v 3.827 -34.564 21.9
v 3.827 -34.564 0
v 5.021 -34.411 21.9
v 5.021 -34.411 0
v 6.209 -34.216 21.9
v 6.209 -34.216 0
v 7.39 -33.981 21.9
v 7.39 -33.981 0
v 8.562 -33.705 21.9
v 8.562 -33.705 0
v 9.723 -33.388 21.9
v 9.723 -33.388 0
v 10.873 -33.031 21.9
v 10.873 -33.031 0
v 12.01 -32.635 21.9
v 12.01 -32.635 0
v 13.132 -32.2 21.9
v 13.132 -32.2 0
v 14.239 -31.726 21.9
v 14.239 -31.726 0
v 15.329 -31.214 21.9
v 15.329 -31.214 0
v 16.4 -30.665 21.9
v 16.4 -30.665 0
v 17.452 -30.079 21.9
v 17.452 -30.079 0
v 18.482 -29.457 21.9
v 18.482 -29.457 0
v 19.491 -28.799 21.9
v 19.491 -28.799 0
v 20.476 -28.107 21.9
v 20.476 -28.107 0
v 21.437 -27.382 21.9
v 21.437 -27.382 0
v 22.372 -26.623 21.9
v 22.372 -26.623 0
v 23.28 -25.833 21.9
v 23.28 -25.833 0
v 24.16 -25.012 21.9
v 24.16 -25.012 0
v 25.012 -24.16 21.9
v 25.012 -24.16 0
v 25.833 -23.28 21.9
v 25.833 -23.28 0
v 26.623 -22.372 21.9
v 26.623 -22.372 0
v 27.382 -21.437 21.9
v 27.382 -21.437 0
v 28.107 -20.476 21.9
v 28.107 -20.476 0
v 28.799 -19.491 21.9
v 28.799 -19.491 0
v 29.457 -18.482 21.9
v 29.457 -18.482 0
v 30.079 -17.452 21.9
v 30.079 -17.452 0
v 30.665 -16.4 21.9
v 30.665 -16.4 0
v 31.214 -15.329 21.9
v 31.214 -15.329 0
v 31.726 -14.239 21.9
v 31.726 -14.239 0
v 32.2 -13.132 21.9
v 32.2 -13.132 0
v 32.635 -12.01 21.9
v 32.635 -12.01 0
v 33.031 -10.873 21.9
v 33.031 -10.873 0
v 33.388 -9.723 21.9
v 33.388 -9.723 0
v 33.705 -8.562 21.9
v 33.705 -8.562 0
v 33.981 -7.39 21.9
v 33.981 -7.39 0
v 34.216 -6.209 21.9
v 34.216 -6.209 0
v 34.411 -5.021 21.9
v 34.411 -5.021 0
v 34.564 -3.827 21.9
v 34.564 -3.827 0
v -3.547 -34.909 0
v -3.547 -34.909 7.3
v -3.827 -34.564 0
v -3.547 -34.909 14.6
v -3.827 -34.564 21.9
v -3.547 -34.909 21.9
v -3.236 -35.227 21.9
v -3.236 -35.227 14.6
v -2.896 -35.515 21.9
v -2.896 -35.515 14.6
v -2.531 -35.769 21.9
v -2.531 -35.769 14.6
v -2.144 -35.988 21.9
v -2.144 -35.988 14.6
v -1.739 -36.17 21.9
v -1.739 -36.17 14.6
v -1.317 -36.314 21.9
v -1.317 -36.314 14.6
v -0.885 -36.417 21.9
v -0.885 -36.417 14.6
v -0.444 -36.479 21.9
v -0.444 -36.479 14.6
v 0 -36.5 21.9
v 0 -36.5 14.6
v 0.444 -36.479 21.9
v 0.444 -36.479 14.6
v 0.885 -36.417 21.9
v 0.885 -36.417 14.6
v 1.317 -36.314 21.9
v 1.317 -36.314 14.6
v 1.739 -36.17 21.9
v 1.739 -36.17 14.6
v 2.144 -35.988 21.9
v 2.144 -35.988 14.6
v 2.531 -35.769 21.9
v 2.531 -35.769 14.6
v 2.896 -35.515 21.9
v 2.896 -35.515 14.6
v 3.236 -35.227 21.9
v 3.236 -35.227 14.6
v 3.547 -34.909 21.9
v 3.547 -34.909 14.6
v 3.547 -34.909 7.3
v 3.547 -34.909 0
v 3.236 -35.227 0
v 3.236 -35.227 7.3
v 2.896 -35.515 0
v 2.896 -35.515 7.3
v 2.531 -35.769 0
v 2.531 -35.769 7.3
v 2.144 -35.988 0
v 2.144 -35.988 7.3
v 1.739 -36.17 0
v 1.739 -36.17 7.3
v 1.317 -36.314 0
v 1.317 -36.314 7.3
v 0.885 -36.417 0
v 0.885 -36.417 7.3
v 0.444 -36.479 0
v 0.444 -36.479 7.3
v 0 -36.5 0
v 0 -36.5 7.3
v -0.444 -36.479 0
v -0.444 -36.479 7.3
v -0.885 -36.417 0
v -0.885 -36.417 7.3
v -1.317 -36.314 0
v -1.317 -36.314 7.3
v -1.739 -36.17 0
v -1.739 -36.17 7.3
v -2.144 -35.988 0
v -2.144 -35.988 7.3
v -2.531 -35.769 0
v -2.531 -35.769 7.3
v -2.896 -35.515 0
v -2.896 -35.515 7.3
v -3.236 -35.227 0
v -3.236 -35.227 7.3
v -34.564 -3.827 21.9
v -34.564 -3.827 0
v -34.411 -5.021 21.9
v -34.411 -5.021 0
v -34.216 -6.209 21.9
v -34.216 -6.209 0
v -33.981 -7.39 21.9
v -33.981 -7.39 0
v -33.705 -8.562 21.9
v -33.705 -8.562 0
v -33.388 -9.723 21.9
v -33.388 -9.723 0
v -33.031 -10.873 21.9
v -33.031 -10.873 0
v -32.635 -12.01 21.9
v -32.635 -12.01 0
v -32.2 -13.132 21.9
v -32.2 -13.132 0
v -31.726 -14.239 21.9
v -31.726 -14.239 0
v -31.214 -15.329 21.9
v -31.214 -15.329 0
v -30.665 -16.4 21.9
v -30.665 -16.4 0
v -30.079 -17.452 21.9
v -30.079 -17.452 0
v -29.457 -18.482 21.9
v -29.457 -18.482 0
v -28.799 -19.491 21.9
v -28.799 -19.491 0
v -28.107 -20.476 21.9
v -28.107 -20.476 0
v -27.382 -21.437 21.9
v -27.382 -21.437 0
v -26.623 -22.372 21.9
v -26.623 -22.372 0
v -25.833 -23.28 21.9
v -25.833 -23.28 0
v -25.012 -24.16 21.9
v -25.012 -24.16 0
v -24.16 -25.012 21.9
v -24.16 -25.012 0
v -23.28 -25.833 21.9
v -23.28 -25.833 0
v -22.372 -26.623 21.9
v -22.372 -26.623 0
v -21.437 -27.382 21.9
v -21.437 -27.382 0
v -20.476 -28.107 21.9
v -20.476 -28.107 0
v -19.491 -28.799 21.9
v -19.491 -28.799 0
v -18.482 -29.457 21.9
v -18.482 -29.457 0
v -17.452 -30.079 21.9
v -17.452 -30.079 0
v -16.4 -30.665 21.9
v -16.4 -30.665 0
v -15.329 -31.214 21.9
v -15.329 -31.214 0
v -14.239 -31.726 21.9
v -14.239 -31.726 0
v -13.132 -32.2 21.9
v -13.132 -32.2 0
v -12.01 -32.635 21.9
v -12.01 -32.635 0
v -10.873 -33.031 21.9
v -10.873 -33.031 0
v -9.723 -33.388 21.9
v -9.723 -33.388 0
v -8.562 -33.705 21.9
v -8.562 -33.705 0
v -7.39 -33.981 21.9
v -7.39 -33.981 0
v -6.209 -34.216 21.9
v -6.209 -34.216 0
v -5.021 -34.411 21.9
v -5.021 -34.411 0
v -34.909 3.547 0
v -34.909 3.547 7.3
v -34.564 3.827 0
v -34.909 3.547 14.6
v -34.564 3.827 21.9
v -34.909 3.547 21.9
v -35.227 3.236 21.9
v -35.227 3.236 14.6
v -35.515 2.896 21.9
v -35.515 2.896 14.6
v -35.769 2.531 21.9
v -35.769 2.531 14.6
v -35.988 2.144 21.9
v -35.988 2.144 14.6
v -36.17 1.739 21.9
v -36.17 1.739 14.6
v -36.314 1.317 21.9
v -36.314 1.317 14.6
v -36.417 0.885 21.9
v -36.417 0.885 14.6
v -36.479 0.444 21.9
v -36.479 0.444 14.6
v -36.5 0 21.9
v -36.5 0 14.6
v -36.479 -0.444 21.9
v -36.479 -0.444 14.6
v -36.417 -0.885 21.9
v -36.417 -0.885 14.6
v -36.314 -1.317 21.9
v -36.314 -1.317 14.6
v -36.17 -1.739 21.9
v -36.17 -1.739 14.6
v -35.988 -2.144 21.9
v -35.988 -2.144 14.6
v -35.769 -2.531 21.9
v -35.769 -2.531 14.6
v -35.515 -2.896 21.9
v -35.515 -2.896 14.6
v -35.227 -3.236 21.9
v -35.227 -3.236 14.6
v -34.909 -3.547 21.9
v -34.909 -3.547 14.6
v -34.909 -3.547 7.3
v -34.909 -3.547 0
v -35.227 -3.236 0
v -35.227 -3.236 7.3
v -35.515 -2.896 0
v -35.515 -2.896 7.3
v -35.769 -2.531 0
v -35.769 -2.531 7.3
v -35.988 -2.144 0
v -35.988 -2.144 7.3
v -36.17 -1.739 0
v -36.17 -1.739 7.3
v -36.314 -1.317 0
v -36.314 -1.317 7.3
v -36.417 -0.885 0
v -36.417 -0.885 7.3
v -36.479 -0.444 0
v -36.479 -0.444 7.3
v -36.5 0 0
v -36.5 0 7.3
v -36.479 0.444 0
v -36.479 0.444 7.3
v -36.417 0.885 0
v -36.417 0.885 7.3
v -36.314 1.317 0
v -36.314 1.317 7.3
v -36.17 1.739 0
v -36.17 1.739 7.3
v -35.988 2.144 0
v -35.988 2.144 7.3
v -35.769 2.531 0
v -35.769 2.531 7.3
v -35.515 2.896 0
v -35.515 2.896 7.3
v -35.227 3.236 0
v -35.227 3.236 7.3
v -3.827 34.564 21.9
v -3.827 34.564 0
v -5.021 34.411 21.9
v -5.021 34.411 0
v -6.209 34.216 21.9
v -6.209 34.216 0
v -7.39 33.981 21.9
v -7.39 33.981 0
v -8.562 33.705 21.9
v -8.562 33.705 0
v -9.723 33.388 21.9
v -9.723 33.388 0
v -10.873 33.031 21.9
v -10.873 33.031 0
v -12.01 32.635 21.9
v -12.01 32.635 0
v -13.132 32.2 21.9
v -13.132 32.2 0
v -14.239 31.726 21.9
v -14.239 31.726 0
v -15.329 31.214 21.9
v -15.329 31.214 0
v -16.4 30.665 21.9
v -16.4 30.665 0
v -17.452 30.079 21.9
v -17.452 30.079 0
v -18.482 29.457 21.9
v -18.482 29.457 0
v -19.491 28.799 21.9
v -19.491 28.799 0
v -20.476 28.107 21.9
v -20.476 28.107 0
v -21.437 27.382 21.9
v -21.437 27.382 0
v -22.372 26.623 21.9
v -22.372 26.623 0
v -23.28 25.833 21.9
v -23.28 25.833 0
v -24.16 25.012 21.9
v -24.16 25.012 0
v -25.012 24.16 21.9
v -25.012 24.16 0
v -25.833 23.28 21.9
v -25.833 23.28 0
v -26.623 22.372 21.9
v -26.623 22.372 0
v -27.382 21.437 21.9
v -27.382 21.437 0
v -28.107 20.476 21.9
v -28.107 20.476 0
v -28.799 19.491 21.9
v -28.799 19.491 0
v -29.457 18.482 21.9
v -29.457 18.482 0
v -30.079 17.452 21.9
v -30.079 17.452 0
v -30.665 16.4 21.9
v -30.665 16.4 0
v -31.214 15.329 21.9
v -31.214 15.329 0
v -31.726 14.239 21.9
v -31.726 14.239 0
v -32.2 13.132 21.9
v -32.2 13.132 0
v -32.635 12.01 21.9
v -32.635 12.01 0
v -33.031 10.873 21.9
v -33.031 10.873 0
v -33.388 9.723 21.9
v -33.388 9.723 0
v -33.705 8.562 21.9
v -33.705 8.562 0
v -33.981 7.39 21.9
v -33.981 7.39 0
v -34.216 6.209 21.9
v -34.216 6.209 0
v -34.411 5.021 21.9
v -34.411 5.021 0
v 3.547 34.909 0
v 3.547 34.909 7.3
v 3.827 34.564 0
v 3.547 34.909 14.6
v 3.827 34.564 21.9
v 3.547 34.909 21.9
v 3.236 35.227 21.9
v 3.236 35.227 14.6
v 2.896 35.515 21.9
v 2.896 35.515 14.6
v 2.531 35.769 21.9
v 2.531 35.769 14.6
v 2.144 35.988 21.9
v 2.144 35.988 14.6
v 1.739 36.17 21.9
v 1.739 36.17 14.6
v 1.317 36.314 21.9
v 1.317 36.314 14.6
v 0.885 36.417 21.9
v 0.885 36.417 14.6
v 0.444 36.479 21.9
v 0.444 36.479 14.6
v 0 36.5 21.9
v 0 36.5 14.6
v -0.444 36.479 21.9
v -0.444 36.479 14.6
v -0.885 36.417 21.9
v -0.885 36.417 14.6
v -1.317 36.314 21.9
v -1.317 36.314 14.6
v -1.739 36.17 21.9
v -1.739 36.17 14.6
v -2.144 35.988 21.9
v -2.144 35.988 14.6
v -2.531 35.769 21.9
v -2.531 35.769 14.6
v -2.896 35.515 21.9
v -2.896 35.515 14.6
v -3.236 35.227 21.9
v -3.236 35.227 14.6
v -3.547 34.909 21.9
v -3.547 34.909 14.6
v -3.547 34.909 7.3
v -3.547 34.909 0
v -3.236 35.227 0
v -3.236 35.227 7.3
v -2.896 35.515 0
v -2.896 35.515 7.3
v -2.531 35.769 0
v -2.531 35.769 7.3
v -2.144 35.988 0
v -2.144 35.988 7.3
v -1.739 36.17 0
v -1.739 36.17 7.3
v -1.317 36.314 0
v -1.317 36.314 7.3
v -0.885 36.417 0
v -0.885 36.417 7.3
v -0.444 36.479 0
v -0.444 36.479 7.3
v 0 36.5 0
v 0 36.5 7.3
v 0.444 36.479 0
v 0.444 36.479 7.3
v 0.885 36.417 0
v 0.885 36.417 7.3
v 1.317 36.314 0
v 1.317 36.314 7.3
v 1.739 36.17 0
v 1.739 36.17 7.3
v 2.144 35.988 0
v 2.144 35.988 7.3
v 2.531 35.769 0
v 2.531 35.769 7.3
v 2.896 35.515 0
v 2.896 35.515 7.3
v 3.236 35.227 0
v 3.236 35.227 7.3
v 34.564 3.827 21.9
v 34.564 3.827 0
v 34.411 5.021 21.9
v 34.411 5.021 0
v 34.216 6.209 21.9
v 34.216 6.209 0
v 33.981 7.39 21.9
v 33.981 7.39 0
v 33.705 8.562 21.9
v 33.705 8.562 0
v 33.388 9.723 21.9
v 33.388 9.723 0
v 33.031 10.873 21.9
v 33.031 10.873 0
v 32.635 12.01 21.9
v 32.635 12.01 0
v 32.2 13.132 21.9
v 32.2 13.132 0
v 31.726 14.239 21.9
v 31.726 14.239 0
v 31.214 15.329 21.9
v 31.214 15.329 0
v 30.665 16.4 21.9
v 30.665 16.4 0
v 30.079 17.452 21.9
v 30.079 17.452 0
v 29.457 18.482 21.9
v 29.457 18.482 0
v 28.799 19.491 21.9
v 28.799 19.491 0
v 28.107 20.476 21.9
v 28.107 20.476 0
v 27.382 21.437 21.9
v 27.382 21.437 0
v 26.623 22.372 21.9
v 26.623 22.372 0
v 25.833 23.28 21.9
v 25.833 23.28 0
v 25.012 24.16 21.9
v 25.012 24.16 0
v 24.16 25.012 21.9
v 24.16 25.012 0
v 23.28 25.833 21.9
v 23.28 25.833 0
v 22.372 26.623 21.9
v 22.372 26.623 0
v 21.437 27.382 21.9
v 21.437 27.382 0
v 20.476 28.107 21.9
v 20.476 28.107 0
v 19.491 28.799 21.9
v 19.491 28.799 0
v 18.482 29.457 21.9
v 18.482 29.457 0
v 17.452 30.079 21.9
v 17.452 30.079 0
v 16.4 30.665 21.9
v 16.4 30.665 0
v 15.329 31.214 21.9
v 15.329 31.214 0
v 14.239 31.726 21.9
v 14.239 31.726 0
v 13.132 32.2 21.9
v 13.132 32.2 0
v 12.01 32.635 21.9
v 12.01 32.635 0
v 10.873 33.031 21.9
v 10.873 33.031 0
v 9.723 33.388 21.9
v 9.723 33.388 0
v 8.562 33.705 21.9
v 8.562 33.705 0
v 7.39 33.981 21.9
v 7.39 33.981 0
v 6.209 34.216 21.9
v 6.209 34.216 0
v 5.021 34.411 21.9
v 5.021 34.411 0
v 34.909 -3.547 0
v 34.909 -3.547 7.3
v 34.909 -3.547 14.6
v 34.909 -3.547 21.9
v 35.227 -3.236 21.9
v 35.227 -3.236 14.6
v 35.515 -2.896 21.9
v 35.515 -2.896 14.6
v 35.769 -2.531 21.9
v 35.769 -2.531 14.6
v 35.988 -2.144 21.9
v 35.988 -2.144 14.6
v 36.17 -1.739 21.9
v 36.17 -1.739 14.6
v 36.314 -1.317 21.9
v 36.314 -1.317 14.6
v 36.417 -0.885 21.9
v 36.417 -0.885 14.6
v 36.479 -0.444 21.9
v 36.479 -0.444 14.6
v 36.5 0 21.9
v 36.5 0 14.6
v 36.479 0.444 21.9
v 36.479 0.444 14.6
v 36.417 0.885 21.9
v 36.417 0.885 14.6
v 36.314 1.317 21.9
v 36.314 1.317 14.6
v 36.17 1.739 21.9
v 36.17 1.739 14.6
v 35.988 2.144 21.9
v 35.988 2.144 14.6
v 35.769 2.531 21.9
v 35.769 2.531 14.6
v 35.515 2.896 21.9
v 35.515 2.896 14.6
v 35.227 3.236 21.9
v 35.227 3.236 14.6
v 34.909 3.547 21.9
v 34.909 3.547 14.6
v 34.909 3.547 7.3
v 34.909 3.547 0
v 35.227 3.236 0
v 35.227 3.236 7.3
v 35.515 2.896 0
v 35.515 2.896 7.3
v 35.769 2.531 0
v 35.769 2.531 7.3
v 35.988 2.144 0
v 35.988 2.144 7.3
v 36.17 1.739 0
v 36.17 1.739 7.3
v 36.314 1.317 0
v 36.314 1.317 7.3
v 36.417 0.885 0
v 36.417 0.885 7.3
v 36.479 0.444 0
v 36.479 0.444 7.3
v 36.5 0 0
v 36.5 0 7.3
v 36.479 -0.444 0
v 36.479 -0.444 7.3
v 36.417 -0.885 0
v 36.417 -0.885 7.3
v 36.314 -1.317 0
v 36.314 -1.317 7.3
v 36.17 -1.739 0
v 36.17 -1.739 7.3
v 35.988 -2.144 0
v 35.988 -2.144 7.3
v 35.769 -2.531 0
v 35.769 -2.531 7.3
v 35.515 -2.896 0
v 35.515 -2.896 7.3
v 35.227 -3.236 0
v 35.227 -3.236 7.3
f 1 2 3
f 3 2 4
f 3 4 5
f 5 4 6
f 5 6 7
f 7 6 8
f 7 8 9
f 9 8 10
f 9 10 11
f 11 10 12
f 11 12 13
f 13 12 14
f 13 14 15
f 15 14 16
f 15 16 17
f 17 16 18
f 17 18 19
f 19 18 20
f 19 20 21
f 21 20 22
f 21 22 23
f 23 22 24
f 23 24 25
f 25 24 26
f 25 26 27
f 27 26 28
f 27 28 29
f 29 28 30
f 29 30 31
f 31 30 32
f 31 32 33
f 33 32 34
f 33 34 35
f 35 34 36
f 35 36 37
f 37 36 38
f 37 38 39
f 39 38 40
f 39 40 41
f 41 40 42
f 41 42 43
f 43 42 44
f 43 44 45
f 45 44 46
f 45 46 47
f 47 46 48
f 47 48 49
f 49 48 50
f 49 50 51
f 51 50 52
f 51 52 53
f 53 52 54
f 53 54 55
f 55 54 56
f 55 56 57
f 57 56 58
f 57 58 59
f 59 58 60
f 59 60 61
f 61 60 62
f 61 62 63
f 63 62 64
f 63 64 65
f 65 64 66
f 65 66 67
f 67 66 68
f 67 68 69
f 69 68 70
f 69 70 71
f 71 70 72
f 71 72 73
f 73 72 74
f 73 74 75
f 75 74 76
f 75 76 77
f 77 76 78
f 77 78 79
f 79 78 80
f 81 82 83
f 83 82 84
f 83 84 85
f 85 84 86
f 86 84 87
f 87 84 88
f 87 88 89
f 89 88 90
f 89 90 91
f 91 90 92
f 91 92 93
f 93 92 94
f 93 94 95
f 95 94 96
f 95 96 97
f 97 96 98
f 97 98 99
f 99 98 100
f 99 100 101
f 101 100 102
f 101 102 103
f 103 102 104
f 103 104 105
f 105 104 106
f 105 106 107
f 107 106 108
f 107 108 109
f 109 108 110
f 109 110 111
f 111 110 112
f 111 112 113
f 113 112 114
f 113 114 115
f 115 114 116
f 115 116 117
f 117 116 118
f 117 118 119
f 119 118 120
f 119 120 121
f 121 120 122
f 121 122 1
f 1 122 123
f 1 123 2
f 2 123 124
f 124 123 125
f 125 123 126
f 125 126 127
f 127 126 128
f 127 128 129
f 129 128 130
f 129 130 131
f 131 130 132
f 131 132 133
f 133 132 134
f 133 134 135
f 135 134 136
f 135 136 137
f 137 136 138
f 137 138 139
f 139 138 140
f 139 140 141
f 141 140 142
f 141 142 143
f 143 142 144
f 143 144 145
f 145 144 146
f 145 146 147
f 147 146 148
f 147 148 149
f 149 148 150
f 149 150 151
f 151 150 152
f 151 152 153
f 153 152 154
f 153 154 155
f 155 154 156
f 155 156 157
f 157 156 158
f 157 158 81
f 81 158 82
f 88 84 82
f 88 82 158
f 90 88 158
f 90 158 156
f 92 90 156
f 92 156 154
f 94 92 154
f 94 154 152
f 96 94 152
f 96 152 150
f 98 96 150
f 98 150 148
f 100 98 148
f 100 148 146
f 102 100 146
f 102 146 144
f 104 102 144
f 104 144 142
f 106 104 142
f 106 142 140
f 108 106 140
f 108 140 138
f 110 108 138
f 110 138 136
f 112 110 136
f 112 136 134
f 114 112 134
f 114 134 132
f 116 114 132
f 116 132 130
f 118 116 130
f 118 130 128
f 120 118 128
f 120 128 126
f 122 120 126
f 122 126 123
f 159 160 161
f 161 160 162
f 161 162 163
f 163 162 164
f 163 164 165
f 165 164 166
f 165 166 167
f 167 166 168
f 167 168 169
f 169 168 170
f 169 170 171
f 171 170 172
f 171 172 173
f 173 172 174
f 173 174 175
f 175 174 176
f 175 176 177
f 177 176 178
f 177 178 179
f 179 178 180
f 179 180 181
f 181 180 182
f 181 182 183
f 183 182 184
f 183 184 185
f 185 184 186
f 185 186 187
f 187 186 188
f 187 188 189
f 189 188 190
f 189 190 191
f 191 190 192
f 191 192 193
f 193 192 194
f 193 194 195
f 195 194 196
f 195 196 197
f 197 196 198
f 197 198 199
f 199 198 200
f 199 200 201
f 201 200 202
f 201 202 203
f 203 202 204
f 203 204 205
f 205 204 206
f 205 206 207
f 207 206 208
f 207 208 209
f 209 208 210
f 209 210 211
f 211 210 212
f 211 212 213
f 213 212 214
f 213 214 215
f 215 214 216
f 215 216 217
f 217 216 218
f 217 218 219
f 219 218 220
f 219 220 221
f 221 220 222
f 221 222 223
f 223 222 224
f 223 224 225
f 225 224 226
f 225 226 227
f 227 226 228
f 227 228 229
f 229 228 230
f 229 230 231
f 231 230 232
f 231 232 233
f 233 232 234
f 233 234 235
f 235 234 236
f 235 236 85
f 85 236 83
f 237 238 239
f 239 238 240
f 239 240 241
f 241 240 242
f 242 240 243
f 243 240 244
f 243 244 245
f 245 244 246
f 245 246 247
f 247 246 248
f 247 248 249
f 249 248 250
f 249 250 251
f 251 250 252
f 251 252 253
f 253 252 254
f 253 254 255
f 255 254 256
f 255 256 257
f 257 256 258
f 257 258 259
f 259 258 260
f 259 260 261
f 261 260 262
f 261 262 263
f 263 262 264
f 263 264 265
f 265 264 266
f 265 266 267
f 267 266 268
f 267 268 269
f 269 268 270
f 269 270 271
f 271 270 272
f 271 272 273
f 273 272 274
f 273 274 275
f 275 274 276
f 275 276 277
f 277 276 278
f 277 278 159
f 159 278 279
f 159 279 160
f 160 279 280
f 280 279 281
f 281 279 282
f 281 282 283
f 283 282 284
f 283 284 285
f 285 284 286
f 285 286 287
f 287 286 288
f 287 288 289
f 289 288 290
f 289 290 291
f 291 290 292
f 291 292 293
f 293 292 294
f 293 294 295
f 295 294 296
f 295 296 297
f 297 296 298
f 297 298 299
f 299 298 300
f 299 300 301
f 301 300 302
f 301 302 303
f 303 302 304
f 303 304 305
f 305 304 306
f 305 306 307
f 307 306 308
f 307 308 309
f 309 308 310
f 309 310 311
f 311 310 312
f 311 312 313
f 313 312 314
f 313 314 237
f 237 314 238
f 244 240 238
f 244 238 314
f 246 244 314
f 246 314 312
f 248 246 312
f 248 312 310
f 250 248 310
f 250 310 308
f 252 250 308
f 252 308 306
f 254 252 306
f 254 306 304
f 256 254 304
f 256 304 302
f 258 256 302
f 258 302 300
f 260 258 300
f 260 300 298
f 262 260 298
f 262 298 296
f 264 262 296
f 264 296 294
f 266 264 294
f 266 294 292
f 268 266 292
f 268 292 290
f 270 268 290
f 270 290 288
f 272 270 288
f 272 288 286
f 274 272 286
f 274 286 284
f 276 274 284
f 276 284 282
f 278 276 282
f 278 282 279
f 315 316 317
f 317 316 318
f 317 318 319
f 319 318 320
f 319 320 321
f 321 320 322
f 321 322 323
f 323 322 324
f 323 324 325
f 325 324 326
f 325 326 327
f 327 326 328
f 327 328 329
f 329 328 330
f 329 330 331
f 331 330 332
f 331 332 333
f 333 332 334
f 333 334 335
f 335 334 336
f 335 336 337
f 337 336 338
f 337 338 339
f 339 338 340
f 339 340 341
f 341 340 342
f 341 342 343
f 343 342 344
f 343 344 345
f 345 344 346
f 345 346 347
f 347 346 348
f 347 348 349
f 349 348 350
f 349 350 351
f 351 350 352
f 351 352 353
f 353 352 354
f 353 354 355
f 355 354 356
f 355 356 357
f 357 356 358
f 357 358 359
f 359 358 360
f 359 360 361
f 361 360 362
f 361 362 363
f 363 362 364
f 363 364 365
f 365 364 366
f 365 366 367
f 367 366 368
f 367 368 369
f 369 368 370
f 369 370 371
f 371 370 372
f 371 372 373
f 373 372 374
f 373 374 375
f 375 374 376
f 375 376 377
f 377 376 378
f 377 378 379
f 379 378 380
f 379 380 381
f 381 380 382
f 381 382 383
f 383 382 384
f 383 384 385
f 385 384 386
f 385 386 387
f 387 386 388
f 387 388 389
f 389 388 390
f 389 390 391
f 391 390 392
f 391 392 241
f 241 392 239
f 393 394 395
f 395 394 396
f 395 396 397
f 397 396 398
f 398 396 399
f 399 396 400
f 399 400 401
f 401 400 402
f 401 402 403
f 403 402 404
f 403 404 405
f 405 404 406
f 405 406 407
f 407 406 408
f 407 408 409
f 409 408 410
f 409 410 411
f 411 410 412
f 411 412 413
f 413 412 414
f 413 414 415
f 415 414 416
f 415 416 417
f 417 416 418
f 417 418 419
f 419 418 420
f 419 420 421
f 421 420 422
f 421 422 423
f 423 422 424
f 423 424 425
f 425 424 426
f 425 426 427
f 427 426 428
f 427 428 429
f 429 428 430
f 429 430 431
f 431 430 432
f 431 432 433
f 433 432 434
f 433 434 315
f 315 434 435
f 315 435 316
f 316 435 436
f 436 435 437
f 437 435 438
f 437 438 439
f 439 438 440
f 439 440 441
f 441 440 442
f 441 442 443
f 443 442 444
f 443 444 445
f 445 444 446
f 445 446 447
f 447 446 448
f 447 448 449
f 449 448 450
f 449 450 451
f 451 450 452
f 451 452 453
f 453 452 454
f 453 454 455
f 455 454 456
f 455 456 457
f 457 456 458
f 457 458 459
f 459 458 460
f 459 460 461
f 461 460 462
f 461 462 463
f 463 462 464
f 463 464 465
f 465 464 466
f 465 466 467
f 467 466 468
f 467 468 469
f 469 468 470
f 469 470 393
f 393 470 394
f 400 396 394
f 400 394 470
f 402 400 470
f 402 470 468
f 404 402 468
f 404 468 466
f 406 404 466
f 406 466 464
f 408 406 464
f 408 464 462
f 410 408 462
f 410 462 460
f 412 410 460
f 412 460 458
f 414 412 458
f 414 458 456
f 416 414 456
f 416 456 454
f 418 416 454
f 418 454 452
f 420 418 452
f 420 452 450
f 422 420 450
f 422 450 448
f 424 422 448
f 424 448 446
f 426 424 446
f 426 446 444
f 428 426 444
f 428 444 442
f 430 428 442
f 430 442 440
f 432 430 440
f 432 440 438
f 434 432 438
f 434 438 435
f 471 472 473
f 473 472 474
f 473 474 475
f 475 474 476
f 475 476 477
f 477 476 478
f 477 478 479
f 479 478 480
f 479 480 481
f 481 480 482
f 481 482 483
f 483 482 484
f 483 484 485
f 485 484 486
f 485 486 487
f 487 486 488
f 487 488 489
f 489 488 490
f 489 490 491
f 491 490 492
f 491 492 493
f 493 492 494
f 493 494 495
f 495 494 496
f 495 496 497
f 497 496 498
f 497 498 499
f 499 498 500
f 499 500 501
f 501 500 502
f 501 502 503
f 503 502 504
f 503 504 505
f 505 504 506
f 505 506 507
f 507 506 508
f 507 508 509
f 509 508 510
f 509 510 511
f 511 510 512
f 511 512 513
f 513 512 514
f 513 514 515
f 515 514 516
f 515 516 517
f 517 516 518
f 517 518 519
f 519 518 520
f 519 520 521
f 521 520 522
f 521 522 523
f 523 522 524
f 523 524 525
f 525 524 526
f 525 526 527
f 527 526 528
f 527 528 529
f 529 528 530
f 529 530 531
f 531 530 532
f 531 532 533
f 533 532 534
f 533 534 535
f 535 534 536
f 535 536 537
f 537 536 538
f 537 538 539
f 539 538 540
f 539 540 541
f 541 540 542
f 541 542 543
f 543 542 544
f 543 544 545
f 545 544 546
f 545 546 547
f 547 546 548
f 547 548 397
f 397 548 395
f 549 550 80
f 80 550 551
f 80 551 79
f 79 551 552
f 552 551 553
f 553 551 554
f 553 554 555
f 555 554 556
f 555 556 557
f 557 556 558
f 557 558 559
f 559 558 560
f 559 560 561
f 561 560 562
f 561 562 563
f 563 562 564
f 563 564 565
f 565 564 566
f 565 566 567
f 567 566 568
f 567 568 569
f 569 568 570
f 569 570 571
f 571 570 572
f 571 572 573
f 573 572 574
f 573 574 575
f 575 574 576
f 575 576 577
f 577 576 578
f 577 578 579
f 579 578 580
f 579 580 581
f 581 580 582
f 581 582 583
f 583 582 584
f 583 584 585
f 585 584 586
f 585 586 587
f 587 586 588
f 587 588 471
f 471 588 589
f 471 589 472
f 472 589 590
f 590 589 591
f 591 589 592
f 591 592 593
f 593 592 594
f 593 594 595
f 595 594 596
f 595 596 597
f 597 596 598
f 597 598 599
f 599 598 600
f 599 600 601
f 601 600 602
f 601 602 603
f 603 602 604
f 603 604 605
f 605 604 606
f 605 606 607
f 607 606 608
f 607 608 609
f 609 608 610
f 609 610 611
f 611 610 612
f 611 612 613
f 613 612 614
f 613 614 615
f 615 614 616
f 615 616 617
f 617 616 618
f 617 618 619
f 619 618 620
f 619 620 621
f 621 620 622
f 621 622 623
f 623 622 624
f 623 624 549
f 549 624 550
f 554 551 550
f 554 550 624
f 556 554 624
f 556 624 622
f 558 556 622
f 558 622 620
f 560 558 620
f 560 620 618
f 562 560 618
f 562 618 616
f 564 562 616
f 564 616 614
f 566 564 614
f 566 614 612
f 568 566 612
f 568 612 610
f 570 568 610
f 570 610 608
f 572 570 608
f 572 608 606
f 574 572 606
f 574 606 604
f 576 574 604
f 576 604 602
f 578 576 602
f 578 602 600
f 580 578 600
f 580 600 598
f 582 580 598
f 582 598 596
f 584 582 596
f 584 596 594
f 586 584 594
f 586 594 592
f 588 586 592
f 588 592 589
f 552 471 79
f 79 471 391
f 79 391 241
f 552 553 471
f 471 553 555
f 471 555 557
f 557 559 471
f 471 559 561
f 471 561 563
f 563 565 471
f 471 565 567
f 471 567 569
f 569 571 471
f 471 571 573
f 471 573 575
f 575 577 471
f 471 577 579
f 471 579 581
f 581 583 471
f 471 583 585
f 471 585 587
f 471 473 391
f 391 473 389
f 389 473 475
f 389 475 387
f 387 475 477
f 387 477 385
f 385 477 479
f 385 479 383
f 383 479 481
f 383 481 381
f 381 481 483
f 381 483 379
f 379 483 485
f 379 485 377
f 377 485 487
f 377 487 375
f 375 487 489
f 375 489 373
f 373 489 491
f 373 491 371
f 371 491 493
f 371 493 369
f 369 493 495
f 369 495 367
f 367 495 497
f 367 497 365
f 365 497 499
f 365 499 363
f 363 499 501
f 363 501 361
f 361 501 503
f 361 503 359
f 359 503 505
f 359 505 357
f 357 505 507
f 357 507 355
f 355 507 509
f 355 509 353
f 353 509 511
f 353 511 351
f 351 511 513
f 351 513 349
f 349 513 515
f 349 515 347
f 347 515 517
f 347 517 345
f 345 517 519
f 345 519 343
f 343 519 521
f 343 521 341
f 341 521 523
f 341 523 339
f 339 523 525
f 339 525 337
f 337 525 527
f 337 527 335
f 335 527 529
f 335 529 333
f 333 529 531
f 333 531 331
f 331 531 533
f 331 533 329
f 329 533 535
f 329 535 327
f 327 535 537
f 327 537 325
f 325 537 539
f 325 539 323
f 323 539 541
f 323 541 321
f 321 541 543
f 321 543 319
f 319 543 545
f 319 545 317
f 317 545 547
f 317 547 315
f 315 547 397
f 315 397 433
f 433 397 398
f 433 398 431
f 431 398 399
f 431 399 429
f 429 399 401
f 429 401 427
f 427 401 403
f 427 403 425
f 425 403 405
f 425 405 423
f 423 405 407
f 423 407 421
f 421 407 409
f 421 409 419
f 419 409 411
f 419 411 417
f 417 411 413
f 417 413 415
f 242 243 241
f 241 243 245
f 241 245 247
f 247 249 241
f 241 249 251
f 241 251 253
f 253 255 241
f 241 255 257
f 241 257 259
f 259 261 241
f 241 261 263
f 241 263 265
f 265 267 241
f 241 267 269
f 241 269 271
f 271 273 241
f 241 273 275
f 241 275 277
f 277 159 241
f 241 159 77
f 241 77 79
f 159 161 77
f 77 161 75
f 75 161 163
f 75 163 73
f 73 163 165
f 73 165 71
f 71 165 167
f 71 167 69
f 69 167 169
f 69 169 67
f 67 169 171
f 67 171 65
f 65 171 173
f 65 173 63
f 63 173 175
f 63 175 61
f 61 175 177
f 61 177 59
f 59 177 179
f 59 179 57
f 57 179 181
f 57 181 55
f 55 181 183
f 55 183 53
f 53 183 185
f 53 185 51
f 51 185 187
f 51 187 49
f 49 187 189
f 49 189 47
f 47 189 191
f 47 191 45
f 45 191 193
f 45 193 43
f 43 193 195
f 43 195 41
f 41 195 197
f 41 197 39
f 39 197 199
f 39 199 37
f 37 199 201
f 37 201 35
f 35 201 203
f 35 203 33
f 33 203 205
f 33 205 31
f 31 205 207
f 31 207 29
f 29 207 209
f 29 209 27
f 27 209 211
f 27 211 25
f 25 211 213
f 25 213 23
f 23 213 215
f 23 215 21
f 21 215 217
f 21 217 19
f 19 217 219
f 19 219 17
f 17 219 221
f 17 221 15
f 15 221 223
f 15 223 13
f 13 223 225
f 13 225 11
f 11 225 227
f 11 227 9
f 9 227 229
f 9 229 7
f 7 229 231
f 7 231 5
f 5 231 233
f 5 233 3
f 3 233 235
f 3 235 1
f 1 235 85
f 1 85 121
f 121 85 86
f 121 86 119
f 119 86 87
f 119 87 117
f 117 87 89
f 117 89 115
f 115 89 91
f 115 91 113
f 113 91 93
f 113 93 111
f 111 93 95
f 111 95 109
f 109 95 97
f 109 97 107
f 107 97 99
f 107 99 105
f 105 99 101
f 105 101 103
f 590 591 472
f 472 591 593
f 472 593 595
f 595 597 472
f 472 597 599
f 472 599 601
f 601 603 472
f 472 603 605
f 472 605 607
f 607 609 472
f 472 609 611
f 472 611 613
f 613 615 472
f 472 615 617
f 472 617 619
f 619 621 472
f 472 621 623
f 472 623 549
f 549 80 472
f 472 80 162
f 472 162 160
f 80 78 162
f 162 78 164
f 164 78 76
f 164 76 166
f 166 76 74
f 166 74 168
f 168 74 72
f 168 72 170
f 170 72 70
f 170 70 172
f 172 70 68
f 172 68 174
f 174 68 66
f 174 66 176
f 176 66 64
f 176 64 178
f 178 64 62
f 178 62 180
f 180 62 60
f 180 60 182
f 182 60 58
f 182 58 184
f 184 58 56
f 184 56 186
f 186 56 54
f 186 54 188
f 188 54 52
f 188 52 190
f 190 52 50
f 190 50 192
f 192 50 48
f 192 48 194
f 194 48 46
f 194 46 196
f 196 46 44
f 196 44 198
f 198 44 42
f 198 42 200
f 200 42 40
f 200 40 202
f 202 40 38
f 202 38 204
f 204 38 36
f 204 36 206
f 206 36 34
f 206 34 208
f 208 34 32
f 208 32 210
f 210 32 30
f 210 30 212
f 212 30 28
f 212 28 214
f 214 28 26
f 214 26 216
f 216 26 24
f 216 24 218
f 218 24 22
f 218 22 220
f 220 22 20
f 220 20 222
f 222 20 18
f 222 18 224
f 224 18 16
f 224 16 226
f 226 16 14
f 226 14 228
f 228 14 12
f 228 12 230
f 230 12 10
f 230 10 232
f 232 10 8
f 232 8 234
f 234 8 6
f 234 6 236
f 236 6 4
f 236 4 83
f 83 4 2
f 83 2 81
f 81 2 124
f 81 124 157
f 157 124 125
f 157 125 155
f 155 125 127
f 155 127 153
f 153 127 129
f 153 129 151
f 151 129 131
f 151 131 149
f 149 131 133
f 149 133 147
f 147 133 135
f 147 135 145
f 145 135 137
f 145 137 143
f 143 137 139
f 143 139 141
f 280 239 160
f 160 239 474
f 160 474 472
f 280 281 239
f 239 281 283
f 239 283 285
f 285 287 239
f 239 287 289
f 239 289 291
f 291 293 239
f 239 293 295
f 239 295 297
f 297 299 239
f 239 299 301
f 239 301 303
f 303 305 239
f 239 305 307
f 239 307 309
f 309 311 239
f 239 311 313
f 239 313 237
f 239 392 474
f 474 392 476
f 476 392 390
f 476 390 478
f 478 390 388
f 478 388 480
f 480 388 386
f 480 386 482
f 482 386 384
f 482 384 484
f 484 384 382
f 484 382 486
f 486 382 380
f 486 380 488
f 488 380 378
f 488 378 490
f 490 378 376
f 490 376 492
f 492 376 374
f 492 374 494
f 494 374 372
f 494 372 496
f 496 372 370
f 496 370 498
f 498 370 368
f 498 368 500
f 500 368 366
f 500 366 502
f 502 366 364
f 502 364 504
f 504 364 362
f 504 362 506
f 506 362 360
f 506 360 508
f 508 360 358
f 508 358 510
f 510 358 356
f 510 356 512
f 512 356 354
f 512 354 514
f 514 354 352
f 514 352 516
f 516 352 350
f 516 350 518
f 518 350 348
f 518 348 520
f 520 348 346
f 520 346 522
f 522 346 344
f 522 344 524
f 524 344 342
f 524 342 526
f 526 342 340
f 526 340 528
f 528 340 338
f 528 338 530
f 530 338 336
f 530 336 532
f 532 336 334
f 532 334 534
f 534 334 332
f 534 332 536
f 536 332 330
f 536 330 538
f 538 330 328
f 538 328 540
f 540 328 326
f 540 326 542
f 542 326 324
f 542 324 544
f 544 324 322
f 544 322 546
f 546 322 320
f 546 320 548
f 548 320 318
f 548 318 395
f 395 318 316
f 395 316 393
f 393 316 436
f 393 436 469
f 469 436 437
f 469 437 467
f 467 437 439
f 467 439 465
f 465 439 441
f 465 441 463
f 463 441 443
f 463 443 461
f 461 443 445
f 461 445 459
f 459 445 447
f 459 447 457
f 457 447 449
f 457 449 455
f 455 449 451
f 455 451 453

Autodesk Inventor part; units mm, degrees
ref_plane "YZ Plane" through (0, 0, 0) normal (1, 0, 0) x (0, 1, 0)
ref_plane "XZ Plane" through (0, 0, 0) normal (0, 1, 0) x (-1, 0, 0)
ref_plane "XY Plane" through (0, 0, 0) normal (0, 0, 1) x (1, 0, 0)
sketch "Sketch1" plane through (0, 0, 0) normal (0, 0, 1) x (1, 0, 0)
  circle A0 centre (0, 0) radius 11.25
  circle A1 centre (0, 0) radius 35.025
  circle A2 centre (0, 0) radius 37.030393
  arc A3 (-32.79294, -17.200962) -> (-31.29294, -19.799038) centre (0, 0) ccw
  line L0 (-32.79294, -17.200962) -> (-31.05471, -16.197395)
  line L1 (-32.79294, -17.200962) -> (-31.05471, -16.197395)
  line L2 (-29.55471, -18.795471) -> (-31.29294, -19.799038)
  line L3 (-31.29294, -19.799038) -> (-29.55471, -18.795471)
  line L4 (-16.197395, -31.05471) -> (-17.200962, -32.79294)
  line L5 (-17.200962, -32.79294) -> (-16.197395, -31.05471)
  arc A4 (-19.799038, -31.29294) -> (-17.200962, -32.79294) centre (0, 0) ccw
  line L6 (-19.799038, -31.29294) -> (-18.795471, -29.55471)
  line L7 (-19.799038, -31.29294) -> (-18.795471, -29.55471)
  arc A5 (17.200962, -32.79294) -> (19.799038, -31.29294) centre (0, 0) ccw
  line L8 (17.200962, -32.79294) -> (16.197395, -31.05471)
  line L9 (17.200962, -32.79294) -> (16.197395, -31.05471)
  line L10 (18.795471, -29.55471) -> (19.799038, -31.29294)
  line L11 (19.799038, -31.29294) -> (18.795471, -29.55471)
  arc A6 (31.29294, -19.799038) -> (32.79294, -17.200962) centre (0, 0) ccw
  line L12 (31.29294, -19.799038) -> (29.55471, -18.795471)
  line L13 (31.05471, -16.197395) -> (32.79294, -17.200962)
  line L14 (32.79294, -17.200962) -> (31.05471, -16.197395)
  line L15 (32.79294, 17.200962) -> (31.05471, 16.197395)
  line L16 (32.79294, 17.200962) -> (31.05471, 16.197395)
  arc A7 (32.79294, 17.200962) -> (31.29294, 19.799038) centre (0, 0) ccw
  line L17 (29.55471, 18.795471) -> (31.29294, 19.799038)
  line L18 (31.29294, 19.799038) -> (29.55471, 18.795471)
  line L19 (16.197395, 31.05471) -> (17.200962, 32.79294)
  line L20 (17.200962, 32.79294) -> (16.197395, 31.05471)
  line L21 (19.799038, 31.29294) -> (18.795471, 29.55471)
  line L22 (19.799038, 31.29294) -> (18.795471, 29.55471)
  line L23 (-17.200962, 32.79294) -> (-16.197395, 31.05471)
  line L24 (-17.200962, 32.79294) -> (-16.197395, 31.05471)
  line L25 (-18.795471, 29.55471) -> (-19.799038, 31.29294)
  line L26 (-19.799038, 31.29294) -> (-18.795471, 29.55471)
  arc A8 (-31.29294, 19.799038) -> (-32.79294, 17.200962) centre (0, 0) ccw
  line L27 (-31.29294, 19.799038) -> (-29.55471, 18.795471)
  line L28 (-31.29294, 19.799038) -> (-29.55471, 18.795471)
  line L29 (-31.05471, 16.197395) -> (-32.79294, 17.200962)
  line L30 (-32.79294, 17.200962) -> (-31.05471, 16.197395)
  arc A9 (-34.800207, -3.961848) -> (-34.800207, 3.961848) centre (-31.75, 0) ccw
  circle A10 centre (-31.75, 0) radius 5
  arc A11 (-3.961848, 34.800207) -> (3.961848, 34.800207) centre (0, 31.75) ccw
  circle A12 centre (0, 31.75) radius 5
  circle A13 centre (31.75, 0) radius 5
  circle A14 centre (31.75, 0) radius 5
  arc A15 (-3.961848, -34.800207) -> (3.961848, -34.800207) centre (0, -31.75) ccw
  circle A16 centre (0, -31.75) radius 5
  circle A17 centre (0, 31.75) radius 4.75
  circle A18 centre (-31.75, 0) radius 4.75
  circle A19 centre (0, -31.75) radius 4.75
  circle A20 centre (31.75, 0) radius 4.75
  circle A21 centre (0, 0) radius 34.775
  circle A22 centre (0, 0) radius 36.75
  point P0 (0, 0)
  point P1 (0, 49.75)
  point P2 (34.563789, -3.82689)
  point P3 (34.563789, 3.82689)
  point P4 (3.82689, 34.563789)
  point P5 (-3.82689, 34.563789)
  point P6 (-34.563789, 3.82689)
  point P7 (-34.563789, -3.82689)
  point P8 (-3.82689, -34.563789)
  point P9 (3.82689, -34.563789)
  dimension "d6" = 70.05
  dimension "d8" = 74.06079
  dimension "d0" = 10
  dimension "d1" = 0.25
  dimension "d4" = 360
  dimension "d7" = 0.25
  dimension "d9" = 73.5
sketch "Sketch1 outline for Extrusion1" plane through (0, 0, 0) normal (0, 0, 1) x (1, 0, 0)
  arc A0 (3.82689, -34.563789) -> (34.563789, -3.82689) centre (0, 0) ccw
  arc A1 (-3.82689, -34.563789) -> (3.82689, -34.563789) centre (0, -31.75) ccw
  arc A2 (-34.563789, -3.82689) -> (-3.82689, -34.563789) centre (0, 0) ccw
  arc A3 (-34.563789, 3.82689) -> (-34.563789, -3.82689) centre (-31.75, 0) ccw
  arc A4 (-3.82689, 34.563789) -> (-34.563789, 3.82689) centre (0, 0) ccw
  arc A5 (3.82689, 34.563789) -> (-3.82689, 34.563789) centre (0, 31.75) ccw
  arc A6 (34.563789, 3.82689) -> (3.82689, 34.563789) centre (0, 0) ccw
  arc A7 (34.563789, -3.82689) -> (34.563789, 3.82689) centre (31.75, 0) ccw
extrude "Extrusion1" add sketch "Sketch1 outline for Extrusion1" along normal blind 21.9
properties part number "dummy_blende_130x130x130mm_corpus"
